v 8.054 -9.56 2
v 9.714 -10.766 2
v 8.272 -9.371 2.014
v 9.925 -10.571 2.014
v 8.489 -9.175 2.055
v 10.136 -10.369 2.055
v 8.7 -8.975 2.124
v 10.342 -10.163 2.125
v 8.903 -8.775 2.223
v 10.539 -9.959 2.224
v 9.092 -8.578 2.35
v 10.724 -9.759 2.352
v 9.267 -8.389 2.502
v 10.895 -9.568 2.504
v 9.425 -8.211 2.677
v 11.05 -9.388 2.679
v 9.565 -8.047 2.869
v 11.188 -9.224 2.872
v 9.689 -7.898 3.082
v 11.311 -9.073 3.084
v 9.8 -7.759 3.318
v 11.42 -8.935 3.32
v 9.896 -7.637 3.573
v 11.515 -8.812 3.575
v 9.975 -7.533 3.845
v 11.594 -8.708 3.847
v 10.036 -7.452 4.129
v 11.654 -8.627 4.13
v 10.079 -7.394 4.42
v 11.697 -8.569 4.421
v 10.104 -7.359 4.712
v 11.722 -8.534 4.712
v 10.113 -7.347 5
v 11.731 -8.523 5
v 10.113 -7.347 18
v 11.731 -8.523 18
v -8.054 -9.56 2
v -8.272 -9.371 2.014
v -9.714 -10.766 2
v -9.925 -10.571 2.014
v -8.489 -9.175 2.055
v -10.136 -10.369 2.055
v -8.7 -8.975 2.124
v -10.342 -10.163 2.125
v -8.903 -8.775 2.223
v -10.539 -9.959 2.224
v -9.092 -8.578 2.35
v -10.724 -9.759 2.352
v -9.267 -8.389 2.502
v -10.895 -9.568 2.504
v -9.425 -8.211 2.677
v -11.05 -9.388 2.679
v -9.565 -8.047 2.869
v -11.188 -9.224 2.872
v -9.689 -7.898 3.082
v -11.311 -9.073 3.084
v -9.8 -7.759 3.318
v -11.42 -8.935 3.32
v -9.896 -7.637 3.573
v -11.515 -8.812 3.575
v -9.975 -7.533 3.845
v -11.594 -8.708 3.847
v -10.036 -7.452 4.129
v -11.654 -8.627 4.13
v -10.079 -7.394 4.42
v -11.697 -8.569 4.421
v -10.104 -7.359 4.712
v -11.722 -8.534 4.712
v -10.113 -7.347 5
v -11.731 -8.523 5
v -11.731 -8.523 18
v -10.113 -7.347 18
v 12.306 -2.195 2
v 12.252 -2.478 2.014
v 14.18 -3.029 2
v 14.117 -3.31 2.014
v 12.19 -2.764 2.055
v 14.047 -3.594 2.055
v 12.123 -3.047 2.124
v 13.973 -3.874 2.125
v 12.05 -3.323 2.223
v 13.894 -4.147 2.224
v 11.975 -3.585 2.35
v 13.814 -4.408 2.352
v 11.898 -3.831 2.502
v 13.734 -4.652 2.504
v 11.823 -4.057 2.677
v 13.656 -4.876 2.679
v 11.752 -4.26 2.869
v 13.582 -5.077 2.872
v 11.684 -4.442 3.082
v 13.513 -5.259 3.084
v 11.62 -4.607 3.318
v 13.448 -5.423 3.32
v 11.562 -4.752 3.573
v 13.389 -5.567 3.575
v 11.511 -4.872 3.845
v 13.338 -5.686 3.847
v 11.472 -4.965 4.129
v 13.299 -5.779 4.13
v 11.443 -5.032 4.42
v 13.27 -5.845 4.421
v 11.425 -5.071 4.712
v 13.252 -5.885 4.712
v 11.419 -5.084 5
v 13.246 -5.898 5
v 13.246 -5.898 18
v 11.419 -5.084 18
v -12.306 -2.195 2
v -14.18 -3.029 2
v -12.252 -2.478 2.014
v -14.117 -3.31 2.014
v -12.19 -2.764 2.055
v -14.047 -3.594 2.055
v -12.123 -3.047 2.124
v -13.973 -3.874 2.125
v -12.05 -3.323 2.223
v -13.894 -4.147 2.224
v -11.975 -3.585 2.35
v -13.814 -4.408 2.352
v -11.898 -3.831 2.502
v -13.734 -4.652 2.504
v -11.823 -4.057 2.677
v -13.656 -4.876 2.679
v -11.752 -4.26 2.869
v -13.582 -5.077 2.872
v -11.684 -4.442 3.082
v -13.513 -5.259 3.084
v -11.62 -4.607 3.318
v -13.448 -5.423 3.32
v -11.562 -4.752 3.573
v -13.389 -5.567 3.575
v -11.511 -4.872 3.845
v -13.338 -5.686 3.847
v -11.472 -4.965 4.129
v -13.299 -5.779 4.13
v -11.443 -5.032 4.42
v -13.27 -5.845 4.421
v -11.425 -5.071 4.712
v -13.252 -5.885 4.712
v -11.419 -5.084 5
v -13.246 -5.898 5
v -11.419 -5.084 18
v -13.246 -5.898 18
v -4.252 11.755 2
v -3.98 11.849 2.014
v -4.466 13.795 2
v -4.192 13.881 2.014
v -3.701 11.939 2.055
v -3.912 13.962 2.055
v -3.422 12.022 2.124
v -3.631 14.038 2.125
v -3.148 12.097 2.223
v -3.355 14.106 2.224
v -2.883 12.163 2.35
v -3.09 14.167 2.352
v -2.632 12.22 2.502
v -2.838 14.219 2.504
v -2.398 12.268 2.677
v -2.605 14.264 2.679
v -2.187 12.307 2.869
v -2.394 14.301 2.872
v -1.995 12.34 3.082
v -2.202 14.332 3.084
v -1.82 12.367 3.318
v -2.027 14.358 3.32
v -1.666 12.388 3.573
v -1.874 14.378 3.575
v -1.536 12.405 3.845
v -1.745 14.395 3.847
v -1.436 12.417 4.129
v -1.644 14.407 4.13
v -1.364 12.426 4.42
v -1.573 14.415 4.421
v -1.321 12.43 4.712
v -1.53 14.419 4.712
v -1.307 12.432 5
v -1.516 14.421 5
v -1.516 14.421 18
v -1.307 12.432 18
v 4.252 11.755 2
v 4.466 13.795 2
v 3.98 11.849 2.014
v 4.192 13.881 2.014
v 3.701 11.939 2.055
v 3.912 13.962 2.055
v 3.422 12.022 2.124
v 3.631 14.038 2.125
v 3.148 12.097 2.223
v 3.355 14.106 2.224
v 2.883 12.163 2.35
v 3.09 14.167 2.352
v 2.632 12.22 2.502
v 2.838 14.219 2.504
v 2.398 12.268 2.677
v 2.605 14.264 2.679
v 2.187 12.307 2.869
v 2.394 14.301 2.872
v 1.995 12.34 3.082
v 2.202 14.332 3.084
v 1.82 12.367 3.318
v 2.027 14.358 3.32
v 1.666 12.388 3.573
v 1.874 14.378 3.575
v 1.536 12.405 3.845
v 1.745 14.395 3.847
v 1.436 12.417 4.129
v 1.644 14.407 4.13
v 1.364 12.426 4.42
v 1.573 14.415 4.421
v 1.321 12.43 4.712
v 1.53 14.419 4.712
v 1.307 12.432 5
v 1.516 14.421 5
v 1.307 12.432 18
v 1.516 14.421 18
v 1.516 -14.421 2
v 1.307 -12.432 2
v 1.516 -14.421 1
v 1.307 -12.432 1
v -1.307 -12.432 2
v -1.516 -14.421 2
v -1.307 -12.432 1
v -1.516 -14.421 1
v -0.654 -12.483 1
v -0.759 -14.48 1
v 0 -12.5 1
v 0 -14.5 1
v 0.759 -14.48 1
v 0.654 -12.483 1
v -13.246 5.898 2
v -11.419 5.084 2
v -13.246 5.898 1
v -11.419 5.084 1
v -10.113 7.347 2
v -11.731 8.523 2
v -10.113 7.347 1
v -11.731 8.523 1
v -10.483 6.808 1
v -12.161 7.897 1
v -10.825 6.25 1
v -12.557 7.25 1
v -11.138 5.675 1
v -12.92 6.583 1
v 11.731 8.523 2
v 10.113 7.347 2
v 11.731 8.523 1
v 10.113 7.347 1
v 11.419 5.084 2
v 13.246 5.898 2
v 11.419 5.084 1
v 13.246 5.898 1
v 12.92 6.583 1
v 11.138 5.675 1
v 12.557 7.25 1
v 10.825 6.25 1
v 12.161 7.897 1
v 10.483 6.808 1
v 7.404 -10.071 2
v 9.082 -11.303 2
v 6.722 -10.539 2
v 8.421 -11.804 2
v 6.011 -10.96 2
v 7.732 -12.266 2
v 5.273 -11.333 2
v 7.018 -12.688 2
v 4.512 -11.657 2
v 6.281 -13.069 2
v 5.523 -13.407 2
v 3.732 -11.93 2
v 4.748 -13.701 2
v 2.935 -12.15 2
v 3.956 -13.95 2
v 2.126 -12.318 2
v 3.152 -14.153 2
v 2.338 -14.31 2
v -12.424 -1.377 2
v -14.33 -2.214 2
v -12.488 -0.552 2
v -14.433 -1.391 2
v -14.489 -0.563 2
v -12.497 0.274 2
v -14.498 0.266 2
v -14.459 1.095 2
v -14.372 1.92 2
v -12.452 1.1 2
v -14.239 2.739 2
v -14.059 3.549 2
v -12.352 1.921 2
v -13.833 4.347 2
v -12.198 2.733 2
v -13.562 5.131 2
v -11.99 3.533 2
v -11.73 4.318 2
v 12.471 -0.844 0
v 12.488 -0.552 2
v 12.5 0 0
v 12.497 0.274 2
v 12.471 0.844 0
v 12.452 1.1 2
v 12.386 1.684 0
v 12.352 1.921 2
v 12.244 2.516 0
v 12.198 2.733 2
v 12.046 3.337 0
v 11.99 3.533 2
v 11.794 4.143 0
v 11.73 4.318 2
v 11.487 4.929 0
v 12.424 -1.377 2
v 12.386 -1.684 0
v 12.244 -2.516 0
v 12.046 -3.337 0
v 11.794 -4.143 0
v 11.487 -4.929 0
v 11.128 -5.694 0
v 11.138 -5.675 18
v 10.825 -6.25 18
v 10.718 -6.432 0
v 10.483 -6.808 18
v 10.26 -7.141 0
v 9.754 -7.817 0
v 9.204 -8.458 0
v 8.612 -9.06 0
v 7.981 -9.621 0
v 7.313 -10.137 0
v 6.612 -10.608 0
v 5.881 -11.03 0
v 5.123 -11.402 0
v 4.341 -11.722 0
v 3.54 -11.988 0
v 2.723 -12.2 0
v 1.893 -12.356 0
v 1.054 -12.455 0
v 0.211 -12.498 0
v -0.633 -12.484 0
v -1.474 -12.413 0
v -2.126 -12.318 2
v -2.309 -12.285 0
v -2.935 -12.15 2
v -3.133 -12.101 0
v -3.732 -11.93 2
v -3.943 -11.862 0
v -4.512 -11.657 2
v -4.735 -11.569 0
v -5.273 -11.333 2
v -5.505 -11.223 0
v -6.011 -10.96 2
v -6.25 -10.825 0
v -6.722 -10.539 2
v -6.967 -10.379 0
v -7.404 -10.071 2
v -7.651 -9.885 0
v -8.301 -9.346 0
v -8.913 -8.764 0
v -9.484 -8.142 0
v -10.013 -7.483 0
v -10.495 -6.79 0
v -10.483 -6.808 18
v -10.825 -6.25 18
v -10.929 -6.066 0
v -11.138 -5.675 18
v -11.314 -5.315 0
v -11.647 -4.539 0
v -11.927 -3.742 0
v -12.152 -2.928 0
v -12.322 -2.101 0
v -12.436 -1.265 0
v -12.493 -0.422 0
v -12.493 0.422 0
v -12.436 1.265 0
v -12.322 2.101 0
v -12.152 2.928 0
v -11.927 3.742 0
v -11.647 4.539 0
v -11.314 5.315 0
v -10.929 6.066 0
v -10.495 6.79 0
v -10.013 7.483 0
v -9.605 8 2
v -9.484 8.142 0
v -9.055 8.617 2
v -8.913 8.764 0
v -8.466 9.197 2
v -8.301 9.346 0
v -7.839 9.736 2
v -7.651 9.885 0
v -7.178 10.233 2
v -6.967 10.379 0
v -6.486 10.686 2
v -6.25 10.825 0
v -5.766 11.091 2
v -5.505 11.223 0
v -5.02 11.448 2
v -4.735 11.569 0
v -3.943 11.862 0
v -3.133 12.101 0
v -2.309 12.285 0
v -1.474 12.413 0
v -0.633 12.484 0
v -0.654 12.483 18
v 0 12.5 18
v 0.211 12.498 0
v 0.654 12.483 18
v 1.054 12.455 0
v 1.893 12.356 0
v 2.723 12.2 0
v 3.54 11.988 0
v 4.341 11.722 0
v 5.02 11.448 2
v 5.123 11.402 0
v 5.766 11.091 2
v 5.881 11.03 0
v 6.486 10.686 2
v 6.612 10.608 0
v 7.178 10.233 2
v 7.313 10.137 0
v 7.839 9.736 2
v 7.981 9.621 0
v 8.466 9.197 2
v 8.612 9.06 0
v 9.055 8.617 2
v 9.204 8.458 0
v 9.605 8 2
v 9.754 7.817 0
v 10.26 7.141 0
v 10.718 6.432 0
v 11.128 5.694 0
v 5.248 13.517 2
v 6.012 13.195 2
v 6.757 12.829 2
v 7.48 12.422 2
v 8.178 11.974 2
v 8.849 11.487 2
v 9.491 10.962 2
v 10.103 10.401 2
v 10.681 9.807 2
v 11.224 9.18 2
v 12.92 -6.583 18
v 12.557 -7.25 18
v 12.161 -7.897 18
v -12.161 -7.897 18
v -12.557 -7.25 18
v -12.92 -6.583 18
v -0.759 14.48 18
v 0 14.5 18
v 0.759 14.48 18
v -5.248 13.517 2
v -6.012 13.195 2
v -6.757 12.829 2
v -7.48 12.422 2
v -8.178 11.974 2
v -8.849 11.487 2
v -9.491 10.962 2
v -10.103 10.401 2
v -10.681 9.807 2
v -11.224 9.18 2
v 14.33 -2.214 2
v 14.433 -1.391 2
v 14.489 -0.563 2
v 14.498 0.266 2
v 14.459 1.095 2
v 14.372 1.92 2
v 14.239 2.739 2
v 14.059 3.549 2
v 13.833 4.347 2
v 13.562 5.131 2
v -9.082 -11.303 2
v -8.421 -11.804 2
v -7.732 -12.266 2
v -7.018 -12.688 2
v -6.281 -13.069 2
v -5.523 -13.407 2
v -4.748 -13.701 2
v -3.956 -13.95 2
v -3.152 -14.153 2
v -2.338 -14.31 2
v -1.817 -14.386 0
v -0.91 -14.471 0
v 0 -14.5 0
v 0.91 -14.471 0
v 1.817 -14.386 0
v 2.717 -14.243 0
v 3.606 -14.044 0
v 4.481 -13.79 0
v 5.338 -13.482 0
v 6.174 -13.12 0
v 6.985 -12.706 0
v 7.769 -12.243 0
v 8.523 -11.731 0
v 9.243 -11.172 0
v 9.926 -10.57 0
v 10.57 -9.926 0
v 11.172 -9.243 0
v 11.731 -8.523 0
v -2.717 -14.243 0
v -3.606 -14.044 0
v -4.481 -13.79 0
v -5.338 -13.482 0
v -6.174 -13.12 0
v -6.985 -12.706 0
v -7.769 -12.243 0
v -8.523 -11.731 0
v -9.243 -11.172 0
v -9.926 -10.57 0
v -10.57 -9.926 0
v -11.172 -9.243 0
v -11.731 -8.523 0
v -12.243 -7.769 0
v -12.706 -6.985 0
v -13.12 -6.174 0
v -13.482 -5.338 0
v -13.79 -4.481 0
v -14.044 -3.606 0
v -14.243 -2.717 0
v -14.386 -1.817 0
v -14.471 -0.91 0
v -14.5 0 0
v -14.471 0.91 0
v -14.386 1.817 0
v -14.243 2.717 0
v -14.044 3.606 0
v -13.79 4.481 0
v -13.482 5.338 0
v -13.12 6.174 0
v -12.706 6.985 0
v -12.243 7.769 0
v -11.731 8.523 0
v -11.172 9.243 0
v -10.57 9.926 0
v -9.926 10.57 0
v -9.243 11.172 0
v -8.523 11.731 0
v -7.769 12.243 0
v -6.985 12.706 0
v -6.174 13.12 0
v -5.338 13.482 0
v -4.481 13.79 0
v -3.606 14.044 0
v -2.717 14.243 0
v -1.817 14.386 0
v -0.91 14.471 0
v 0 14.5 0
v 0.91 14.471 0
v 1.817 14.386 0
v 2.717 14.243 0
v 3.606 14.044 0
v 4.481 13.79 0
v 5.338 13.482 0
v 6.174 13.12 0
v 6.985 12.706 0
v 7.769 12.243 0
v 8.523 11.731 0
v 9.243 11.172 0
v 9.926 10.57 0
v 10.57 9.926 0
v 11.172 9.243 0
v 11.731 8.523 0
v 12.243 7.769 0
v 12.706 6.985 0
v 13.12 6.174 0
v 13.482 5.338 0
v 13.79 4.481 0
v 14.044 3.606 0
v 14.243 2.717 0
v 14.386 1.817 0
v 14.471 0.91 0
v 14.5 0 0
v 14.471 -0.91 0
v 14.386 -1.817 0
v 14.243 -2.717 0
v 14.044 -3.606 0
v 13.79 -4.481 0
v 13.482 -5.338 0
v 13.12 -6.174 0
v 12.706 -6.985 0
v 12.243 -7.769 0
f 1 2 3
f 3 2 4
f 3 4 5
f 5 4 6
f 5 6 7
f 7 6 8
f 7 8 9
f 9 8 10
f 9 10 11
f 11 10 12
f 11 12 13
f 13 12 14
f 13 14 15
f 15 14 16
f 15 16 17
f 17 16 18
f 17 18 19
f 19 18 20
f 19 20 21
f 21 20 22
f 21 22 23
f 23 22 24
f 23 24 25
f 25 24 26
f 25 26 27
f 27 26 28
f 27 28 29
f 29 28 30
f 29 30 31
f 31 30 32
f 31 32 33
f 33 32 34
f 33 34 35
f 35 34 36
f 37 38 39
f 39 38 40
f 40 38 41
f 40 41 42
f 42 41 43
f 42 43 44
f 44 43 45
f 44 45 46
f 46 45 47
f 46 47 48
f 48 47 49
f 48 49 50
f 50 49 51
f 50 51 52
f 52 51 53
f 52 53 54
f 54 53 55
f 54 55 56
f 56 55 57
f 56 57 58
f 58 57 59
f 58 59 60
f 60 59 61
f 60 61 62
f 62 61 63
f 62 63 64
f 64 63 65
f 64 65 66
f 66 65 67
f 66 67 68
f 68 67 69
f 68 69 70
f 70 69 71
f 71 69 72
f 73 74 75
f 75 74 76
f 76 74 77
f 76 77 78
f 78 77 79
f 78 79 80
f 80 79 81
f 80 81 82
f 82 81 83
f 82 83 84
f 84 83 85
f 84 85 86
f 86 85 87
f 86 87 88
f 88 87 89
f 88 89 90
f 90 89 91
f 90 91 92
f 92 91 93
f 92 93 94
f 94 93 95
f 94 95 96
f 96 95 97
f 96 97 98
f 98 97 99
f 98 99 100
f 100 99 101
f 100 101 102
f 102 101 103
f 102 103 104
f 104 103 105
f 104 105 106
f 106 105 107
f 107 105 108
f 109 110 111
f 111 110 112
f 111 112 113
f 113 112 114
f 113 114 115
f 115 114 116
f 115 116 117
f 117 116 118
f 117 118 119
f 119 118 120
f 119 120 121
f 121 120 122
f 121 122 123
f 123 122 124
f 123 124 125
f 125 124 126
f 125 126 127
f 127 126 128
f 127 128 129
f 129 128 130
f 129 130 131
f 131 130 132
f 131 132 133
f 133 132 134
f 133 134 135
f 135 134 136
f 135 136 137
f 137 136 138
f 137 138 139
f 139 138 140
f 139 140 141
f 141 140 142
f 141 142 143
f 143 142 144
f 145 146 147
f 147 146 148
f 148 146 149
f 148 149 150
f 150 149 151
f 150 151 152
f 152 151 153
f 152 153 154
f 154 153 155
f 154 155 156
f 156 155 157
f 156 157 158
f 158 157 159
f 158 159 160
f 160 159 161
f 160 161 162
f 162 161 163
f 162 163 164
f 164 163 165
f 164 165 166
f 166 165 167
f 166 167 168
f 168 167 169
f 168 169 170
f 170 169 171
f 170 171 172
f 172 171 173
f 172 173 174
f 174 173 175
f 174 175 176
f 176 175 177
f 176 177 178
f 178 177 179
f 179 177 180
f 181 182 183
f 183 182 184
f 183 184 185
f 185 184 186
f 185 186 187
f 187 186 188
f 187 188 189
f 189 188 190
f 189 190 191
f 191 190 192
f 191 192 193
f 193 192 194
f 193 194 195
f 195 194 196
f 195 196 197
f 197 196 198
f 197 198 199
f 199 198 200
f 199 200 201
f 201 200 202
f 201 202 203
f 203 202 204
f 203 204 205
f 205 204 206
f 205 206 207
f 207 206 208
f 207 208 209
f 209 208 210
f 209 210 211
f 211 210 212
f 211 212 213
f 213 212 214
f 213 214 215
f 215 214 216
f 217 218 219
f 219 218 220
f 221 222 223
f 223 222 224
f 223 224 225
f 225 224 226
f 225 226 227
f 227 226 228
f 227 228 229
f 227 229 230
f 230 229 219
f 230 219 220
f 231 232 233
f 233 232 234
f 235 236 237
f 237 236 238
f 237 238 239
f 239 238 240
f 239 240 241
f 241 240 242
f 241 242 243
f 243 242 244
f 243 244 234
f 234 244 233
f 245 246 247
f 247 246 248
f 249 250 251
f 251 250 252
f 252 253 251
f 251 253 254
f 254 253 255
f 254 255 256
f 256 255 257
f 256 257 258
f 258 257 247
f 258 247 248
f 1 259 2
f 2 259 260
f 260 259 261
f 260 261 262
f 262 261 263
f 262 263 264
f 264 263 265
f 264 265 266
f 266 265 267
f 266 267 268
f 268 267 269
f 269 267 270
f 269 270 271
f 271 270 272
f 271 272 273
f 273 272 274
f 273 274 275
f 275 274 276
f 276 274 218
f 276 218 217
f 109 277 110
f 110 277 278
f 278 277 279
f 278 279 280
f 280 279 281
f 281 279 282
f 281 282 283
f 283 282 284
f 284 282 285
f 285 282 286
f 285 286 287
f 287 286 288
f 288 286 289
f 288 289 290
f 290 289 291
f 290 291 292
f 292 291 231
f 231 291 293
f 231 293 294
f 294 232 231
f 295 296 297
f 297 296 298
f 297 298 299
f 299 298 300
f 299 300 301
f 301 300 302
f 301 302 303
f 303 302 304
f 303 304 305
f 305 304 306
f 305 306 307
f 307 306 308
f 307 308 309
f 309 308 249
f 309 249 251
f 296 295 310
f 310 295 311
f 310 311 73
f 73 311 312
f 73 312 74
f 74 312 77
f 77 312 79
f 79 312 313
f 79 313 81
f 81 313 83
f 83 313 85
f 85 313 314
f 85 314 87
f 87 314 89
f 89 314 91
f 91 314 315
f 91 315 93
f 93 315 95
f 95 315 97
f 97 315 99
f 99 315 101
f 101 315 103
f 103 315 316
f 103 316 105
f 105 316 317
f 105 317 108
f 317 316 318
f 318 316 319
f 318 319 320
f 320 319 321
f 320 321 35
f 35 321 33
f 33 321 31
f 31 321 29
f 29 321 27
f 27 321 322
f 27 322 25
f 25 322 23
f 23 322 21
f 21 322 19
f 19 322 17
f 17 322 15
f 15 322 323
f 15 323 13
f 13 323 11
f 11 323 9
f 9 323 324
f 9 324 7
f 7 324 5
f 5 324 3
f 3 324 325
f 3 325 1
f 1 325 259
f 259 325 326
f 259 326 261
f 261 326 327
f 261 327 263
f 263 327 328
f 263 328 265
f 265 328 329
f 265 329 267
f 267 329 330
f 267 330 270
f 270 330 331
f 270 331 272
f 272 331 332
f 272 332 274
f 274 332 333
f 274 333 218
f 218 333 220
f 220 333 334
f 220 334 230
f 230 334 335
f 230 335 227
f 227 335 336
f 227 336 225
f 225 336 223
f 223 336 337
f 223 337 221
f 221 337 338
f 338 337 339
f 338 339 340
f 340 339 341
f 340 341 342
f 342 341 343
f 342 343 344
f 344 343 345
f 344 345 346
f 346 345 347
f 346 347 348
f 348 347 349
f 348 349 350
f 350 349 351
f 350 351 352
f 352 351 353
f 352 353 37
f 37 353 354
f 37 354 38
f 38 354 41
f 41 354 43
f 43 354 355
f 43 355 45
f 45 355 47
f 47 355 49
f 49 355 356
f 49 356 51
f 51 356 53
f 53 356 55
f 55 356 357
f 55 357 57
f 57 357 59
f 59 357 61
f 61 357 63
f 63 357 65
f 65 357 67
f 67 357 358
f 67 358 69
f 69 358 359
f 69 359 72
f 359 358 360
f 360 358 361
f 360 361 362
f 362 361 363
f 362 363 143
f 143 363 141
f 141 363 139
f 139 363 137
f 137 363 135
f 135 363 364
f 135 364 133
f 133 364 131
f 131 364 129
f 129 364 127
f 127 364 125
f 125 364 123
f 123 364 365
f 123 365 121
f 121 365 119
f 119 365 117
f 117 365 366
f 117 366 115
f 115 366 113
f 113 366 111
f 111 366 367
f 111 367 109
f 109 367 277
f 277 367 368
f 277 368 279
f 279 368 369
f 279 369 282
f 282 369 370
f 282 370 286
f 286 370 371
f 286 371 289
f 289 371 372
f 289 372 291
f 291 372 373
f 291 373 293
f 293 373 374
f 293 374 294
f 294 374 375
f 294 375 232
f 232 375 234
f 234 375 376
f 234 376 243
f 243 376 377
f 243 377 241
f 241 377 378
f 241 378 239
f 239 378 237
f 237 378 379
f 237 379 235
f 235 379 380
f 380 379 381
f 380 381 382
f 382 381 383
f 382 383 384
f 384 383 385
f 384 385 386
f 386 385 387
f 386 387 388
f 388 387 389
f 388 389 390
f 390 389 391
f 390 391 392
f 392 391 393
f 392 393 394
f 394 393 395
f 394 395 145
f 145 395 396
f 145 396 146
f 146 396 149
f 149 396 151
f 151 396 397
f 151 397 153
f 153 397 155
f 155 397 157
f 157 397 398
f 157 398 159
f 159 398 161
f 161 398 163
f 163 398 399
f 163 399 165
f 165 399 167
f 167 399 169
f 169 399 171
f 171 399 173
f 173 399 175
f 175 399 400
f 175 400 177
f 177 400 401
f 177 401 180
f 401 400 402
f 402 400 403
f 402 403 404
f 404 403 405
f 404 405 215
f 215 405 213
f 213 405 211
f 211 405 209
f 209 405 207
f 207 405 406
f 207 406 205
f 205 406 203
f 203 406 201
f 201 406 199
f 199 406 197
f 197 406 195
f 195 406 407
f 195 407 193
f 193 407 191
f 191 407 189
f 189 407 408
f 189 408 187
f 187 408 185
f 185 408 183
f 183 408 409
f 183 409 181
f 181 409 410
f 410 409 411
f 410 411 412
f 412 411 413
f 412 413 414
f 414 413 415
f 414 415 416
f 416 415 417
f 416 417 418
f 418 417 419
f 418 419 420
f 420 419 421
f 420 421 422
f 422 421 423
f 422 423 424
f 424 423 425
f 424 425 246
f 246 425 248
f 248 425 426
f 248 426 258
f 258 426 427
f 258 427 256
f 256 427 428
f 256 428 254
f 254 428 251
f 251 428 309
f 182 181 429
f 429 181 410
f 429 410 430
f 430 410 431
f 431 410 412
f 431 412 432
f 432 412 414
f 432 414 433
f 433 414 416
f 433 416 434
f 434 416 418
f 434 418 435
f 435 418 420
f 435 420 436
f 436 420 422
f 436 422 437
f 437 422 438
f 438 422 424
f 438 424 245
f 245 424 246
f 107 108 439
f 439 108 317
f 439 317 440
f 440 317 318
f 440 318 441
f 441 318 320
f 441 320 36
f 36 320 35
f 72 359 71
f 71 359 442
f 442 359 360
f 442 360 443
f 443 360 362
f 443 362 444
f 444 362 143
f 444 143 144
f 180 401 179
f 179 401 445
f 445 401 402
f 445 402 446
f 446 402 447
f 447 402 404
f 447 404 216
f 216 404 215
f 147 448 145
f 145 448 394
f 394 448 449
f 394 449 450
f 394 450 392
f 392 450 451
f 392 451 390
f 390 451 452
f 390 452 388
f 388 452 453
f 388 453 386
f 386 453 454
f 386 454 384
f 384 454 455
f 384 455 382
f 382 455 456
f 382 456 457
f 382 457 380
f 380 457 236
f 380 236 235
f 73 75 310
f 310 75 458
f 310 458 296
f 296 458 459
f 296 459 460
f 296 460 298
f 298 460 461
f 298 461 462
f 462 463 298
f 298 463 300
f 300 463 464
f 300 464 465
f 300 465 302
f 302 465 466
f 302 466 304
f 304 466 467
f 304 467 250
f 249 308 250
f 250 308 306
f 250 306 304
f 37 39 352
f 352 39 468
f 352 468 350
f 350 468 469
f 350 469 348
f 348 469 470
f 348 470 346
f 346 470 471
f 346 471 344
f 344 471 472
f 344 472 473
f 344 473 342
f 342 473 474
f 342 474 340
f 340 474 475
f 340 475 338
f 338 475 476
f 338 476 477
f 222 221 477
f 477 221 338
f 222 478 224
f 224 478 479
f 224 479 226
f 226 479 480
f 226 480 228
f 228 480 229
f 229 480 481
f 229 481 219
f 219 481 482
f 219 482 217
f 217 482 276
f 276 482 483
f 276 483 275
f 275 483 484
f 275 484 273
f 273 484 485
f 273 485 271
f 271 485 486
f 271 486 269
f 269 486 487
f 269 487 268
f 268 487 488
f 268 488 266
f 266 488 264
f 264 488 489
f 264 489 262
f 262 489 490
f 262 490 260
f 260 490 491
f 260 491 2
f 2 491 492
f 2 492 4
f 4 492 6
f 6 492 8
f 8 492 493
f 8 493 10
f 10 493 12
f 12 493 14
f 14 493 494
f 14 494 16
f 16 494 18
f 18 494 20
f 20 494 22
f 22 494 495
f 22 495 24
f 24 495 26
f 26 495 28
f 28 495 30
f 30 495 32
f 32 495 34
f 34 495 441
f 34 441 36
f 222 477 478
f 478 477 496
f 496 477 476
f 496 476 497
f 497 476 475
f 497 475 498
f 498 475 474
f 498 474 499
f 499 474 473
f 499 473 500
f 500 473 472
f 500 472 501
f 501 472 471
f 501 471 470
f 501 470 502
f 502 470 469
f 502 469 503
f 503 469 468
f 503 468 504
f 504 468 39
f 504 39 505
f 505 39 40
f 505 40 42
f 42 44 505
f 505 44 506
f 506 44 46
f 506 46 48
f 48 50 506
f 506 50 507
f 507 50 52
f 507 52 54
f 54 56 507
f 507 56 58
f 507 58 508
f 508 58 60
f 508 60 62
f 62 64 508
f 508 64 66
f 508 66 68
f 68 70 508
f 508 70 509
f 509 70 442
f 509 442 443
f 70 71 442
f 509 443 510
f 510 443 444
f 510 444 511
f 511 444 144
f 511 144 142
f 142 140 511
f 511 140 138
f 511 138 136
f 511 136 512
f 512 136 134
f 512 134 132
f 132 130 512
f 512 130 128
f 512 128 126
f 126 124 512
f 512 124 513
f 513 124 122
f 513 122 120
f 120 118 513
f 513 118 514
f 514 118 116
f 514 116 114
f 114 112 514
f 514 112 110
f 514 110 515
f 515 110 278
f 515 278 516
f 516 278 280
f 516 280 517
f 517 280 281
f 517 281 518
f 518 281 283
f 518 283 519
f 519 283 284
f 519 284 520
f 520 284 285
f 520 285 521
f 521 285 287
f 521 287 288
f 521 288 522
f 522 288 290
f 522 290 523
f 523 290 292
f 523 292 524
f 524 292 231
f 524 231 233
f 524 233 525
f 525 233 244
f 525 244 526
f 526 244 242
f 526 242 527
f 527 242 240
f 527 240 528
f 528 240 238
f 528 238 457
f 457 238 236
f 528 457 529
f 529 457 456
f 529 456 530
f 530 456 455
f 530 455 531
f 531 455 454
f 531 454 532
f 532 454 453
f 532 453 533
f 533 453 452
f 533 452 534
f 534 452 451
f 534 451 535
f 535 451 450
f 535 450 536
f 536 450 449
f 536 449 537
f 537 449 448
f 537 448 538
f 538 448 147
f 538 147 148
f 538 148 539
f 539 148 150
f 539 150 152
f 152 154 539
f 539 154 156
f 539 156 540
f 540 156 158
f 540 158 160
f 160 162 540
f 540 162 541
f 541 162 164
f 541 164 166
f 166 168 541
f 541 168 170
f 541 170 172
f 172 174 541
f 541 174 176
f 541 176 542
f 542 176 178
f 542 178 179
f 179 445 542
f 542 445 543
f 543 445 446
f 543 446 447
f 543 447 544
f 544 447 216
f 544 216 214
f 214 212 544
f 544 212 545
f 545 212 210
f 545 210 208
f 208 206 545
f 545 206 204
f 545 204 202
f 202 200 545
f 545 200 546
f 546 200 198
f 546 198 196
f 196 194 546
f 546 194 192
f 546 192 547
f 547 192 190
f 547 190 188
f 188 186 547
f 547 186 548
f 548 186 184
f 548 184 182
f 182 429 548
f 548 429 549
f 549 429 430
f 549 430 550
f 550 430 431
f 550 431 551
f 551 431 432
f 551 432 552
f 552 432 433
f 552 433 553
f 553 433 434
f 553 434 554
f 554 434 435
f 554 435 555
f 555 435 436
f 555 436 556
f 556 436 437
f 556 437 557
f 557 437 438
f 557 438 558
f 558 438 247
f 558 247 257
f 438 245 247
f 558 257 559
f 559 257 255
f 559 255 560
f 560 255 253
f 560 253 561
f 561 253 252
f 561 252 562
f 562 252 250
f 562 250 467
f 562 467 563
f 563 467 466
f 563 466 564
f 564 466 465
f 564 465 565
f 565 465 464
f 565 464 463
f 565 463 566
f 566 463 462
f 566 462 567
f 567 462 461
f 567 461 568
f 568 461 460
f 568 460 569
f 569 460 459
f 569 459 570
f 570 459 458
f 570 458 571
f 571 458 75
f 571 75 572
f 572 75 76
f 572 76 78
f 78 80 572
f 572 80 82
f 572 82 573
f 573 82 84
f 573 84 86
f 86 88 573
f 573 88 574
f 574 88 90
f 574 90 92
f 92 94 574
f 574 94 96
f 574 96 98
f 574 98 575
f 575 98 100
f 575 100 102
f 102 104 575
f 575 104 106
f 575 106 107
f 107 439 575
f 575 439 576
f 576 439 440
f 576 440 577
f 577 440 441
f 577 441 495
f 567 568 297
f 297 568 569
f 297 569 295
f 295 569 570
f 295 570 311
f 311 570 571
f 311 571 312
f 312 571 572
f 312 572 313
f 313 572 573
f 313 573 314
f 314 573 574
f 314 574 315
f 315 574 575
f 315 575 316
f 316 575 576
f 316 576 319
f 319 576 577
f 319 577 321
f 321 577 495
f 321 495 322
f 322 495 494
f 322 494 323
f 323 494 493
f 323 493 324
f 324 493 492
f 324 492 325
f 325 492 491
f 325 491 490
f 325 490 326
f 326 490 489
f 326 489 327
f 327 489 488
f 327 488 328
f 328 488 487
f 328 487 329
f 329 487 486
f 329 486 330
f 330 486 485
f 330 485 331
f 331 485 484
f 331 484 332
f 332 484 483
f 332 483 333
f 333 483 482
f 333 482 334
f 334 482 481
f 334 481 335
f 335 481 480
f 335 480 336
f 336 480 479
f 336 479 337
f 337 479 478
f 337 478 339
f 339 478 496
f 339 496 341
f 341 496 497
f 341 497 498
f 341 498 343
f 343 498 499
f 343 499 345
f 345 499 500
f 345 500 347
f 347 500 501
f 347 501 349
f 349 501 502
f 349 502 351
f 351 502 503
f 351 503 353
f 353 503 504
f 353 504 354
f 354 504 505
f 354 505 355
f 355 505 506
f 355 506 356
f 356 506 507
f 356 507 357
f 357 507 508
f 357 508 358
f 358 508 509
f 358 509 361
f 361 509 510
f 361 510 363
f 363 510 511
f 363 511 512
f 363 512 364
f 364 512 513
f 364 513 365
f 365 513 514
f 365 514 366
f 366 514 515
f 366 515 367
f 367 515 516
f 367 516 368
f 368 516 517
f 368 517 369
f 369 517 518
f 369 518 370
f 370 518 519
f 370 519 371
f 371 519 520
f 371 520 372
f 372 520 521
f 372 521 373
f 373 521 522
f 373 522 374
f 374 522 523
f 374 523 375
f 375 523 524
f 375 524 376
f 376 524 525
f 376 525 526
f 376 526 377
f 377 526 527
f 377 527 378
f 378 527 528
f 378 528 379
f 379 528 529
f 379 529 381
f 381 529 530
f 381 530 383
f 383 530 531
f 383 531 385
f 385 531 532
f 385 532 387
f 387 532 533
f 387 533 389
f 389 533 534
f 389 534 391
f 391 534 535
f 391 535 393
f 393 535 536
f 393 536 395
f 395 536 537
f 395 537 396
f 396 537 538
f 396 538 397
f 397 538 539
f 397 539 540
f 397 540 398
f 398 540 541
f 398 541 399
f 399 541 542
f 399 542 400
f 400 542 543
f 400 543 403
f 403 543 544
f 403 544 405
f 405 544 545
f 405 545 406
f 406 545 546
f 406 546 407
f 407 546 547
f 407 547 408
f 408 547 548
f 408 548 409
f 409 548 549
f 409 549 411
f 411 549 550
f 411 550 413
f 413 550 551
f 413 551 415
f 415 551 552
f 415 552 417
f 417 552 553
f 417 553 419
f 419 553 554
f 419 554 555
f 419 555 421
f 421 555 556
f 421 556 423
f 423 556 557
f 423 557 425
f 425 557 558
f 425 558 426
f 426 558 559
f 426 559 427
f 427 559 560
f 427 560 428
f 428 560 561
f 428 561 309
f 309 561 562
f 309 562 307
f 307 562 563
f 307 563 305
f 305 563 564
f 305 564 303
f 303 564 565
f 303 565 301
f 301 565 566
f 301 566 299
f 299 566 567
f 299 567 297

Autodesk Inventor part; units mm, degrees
ref_plane "YZ Plane" through (0, 0, 0) normal (1, 0, 0) x (0, 1, 0)
ref_plane "XZ Plane" through (0, 0, 0) normal (0, 1, 0) x (-1, 0, 0)
ref_plane "XY Plane" through (0, 0, 0) normal (0, 0, 1) x (1, 0, 0)
sketch "Sketch1" plane through (0, 0, 0) normal (0, 0, 1) x (1, 0, 0)
  circle A0 centre (0, 0) radius 12.5
  circle A1 centre (0, 0) radius 14.5
  dimension "d0" = 25
  dimension "d1" = 2
extrude "Extrusion1" add sketch "Sketch1" along normal blind 2
sketch "Sketch2" plane through (0, 0, 2) normal (0, 0, 1) x (1, 0, 0)
  circle A0 centre (0, 0) radius 14.5 construction
  line L0 (0, 14.5) -> (0, 0) construction
  line L1 (0, 0) -> (12.5574, -7.25) construction
  line L2 (0, 0) -> (-12.5574, -7.25) construction
  line L3 (0, 0) -> (-12.5574, 7.25) construction
  line L4 (0, 0) -> (12.5574, 7.25) construction
  circle A1 centre (0, 0) radius 14.5 projected
  circle A2 centre (0, 0) radius 12.5 projected
  line L5 (1.3066, 12.4315) -> (1.5157, 14.4206)
  line L6 (-1.3066, 12.4315) -> (-1.5157, 14.4206)
  line L7 (-11.4193, -5.0842) -> (-13.2464, -5.8977)
  line L8 (-10.1127, -7.3473) -> (-11.7307, -8.5229)
  line L9 (10.1127, -7.3473) -> (11.7307, -8.5229)
  line L10 (11.4193, -5.0842) -> (13.2464, -5.8977)
  line L11 (10.1127, 7.3473) -> (11.7307, 8.5229)
  line L12 (11.4193, 5.0842) -> (13.2464, 5.8977)
  line L13 (-11.4193, 5.0842) -> (-13.2464, 5.8977)
  line L14 (-10.1127, 7.3473) -> (-11.7307, 8.5229)
  line L15 (1.3066, -12.4315) -> (1.5157, -14.4206)
  line L16 (-1.3066, -12.4315) -> (-1.5157, -14.4206)
  point P0 (-12.5574, -7.25)
  point P1 (12.5574, -7.25)
  dimension "d4" = 120
  dimension "d5" = 120
  dimension "d6" = 6
  dimension "d7" = 6
  dimension "d10" = 360
  dimension "d14" = 6
  dimension "d15" = 6
  dimension "d18" = 360
extrude "Extrusion2" add sketch "Sketch2" along normal blind 16 contours A1 L9 A2 L10 | L5 A2 L6 A1 | A1 L7 A2 L8
sketch "Sketch3" plane through (0, 0, 2) normal (0, 0, 1) x (1, 0, 0)
  circle A0 centre (0, 0) radius 14.5 construction
  line L0 (0, 14.5) -> (0, 0) construction
  line L1 (0, 0) -> (12.5574, -7.25) construction
  line L2 (0, 0) -> (-12.5574, -7.25) construction
  line L3 (0, 0) -> (-12.5574, 7.25) construction
  line L4 (0, 0) -> (12.5574, 7.25) construction
  circle A1 centre (0, 0) radius 14.5
  circle A2 centre (0, 0) radius 12.5
  line L5 (1.3066, 12.4315) -> (1.5157, 14.4206)
  line L6 (-1.3066, 12.4315) -> (-1.5157, 14.4206)
  line L7 (-11.4193, -5.0842) -> (-13.2464, -5.8977)
  line L8 (-10.1127, -7.3473) -> (-11.7307, -8.5229)
  line L9 (10.1127, -7.3473) -> (11.7307, -8.5229)
  line L10 (11.4193, -5.0842) -> (13.2464, -5.8977)
  line L11 (10.1127, 7.3473) -> (11.7307, 8.5229)
  line L12 (11.4193, 5.0842) -> (13.2464, 5.8977)
  line L13 (-11.4193, 5.0842) -> (-13.2464, 5.8977)
  line L14 (-10.1127, 7.3473) -> (-11.7307, 8.5229)
  line L15 (1.3066, -12.4315) -> (1.5157, -14.4206)
  line L16 (-1.3066, -12.4315) -> (-1.5157, -14.4206)
  point P0 (-12.5574, -7.25)
  point P1 (12.5574, -7.25)
  dimension "d24" = 120
  dimension "d25" = 120
  dimension "d26" = 6
  dimension "d27" = 6
  dimension "d28" = 360
  dimension "d29" = 6
  dimension "d30" = 6
  dimension "d31" = 360
extrude "Extrusion3" cut sketch "Sketch3" against normal blind 1 contours L12 A2 L11 A1 | A1 L16 A2 L15 | L14 A2 L13 A1
fillet "Fillet1" radius 3 6 edges at (1.4111, 13.426, 2) (-1.4111, 13.426, 2) (-12.3329, -5.4909, 2) (12.3329, -5.4909, 2) (-10.9217, -7.9351, 2) (10.9217, -7.9351, 2)
properties part number "_3DPrint"
